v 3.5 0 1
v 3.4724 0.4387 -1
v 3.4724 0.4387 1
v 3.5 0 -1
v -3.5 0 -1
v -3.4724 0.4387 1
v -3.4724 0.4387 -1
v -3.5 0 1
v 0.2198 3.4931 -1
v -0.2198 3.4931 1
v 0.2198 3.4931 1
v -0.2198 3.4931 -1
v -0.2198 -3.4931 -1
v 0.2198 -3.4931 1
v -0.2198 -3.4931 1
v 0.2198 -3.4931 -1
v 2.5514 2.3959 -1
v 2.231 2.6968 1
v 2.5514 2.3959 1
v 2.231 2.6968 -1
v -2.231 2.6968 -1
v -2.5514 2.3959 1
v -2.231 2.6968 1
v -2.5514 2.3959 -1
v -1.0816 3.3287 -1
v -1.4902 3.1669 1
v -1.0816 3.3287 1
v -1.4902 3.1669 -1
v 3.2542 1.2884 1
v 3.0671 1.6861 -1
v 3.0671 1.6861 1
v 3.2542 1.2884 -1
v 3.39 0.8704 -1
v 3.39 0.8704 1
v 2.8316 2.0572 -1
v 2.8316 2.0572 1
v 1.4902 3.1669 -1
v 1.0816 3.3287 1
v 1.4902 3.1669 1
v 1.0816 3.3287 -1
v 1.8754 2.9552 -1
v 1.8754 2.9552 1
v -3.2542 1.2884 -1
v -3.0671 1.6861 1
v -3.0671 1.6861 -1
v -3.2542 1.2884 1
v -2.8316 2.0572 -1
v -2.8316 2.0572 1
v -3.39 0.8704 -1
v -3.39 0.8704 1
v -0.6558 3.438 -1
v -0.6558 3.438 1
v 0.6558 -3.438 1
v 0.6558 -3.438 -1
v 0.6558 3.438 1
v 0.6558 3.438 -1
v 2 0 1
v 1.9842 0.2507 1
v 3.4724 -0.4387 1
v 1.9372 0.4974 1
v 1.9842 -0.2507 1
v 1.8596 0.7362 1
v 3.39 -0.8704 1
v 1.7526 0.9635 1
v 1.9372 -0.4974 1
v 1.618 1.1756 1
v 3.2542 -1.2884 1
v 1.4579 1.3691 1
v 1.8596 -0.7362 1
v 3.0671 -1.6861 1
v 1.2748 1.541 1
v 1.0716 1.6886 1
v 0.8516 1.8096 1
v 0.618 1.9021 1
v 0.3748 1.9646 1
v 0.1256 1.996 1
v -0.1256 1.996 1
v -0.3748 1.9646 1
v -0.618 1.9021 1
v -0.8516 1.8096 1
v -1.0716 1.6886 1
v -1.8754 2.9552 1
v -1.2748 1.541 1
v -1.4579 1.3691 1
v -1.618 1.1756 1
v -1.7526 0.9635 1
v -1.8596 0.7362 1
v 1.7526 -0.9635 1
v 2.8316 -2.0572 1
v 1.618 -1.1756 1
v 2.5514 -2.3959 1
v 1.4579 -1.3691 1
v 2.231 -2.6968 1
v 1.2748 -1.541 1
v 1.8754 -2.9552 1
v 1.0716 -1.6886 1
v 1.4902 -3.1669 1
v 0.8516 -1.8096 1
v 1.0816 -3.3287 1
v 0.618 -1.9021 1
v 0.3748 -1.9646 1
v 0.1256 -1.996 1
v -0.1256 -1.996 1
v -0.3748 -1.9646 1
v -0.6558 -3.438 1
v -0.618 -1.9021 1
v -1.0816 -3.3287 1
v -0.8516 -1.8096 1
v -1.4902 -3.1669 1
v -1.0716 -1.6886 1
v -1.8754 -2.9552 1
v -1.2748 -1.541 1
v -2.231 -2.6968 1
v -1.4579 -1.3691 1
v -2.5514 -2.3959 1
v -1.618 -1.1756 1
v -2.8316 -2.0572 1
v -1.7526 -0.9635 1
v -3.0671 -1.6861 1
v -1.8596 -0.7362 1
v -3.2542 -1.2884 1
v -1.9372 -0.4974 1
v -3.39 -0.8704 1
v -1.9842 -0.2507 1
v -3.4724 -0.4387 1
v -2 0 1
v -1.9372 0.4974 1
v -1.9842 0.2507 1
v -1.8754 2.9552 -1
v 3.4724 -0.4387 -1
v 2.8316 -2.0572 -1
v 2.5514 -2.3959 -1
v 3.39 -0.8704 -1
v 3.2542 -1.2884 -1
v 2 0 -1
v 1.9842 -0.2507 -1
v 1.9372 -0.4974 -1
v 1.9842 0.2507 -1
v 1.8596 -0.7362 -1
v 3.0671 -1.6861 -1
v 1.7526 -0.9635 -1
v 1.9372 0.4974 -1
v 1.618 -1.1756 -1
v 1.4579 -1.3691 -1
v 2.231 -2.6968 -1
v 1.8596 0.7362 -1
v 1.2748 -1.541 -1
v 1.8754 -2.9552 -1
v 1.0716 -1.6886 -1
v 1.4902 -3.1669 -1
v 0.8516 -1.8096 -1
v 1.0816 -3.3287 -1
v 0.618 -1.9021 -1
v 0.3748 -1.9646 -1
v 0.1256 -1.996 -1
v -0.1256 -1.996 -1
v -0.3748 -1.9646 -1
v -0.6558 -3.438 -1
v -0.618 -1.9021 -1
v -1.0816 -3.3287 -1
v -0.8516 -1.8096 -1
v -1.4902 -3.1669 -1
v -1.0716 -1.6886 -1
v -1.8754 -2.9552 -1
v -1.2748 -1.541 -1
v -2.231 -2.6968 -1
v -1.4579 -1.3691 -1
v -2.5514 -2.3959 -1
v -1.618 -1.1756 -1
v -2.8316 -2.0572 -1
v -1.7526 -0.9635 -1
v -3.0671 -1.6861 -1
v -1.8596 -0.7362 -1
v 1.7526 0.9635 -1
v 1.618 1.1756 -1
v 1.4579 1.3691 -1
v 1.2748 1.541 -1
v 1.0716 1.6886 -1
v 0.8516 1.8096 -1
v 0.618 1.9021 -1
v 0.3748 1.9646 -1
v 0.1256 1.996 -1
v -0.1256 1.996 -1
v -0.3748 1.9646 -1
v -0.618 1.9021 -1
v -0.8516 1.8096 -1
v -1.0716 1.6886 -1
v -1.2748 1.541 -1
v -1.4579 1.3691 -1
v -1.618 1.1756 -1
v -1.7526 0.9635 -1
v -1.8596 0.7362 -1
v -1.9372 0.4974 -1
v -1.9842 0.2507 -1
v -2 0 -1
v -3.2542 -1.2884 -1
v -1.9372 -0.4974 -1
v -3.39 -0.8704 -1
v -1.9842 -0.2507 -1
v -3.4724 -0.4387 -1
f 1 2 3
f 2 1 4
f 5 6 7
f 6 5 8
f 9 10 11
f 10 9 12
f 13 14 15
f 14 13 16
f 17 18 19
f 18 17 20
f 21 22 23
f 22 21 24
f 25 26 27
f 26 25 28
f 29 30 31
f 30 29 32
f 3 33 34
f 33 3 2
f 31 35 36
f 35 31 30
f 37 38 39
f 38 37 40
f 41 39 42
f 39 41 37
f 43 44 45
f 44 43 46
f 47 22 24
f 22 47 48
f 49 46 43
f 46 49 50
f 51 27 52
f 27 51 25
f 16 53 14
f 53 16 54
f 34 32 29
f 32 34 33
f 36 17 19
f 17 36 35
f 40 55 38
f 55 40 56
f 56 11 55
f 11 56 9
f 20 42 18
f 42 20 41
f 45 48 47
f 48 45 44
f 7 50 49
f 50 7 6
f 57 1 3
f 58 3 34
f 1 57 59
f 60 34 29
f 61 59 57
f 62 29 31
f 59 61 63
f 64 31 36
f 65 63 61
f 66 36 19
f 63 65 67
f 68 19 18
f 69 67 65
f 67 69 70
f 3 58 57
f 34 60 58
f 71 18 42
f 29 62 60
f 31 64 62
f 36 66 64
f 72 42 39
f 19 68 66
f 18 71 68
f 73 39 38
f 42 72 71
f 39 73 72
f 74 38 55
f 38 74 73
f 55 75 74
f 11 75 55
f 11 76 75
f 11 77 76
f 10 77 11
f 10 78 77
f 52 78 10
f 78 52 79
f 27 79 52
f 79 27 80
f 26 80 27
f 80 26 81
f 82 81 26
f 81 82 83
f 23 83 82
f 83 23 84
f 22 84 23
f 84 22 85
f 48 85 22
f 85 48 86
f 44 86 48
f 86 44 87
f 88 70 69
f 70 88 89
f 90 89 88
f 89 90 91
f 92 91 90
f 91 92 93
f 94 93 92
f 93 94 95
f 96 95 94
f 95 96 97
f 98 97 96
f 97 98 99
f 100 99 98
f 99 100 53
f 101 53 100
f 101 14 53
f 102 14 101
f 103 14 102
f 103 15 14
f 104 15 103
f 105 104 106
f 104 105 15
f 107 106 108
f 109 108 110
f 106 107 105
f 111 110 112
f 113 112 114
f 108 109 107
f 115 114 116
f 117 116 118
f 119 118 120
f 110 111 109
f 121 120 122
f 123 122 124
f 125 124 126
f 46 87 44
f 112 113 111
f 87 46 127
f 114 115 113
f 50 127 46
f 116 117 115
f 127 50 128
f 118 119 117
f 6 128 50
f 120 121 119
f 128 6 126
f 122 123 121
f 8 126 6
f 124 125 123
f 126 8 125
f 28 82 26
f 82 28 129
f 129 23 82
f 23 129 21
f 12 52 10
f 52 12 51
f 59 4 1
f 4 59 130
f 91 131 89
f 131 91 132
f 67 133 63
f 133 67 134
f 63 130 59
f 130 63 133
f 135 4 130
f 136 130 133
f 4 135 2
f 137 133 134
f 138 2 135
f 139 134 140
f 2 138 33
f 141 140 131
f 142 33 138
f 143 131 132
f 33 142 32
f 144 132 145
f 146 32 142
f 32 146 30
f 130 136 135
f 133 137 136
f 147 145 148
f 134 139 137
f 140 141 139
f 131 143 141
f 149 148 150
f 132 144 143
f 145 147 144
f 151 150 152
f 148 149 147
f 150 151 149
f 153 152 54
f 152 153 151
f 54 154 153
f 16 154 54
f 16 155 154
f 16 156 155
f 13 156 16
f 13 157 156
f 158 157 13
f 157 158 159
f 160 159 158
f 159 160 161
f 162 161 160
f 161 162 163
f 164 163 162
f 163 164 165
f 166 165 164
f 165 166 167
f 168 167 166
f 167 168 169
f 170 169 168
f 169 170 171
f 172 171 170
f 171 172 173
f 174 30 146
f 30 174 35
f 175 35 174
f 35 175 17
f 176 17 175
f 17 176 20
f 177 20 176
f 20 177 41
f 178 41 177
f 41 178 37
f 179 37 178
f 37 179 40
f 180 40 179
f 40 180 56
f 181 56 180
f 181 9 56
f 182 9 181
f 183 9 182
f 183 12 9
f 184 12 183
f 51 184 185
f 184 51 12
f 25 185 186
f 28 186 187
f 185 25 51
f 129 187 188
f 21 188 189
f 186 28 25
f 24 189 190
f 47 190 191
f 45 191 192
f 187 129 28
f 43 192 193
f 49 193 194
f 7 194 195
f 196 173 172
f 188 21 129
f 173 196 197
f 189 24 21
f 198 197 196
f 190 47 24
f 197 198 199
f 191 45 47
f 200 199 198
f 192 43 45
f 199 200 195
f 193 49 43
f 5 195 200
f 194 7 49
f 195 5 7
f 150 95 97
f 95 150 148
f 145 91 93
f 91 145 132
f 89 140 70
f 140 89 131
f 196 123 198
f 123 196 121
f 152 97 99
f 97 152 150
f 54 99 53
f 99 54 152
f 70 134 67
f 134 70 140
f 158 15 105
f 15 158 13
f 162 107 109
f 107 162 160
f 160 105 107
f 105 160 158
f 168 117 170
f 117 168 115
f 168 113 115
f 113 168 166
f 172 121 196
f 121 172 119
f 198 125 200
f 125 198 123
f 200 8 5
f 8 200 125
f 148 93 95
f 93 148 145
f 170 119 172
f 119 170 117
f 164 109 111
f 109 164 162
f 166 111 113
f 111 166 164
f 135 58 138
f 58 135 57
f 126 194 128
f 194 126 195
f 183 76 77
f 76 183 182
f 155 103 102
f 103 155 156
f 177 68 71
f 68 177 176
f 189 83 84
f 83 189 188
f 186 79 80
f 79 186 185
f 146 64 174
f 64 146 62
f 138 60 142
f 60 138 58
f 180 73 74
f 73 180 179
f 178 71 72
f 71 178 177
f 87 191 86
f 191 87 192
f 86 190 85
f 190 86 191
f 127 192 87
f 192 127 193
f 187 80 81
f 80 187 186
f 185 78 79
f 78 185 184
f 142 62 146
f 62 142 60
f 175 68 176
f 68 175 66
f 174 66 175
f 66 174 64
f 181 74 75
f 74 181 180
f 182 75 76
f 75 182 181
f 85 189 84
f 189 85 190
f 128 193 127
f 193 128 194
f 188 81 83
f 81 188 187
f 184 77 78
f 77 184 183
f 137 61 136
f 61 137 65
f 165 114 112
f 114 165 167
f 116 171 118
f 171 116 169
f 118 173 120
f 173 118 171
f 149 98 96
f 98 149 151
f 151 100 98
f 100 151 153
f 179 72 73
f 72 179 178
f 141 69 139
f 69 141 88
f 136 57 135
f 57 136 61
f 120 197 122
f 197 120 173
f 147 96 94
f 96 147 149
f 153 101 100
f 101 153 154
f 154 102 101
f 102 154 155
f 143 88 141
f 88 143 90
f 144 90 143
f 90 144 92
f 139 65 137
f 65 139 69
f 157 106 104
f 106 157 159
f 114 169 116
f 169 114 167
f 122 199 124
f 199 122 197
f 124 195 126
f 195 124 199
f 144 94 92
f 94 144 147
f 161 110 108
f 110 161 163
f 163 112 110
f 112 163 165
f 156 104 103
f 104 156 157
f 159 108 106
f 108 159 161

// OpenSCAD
$fn = 50;


difference() {
	union() {
		translate(v = [0, 0, -1.0000000000]) {
			cylinder(h = 2, r = 3.5000000000);
		}
	}
	union() {
		translate(v = [0, 0, -100.0000000000]) {
			cylinder(h = 200, r = 2);
		}
	}
}
